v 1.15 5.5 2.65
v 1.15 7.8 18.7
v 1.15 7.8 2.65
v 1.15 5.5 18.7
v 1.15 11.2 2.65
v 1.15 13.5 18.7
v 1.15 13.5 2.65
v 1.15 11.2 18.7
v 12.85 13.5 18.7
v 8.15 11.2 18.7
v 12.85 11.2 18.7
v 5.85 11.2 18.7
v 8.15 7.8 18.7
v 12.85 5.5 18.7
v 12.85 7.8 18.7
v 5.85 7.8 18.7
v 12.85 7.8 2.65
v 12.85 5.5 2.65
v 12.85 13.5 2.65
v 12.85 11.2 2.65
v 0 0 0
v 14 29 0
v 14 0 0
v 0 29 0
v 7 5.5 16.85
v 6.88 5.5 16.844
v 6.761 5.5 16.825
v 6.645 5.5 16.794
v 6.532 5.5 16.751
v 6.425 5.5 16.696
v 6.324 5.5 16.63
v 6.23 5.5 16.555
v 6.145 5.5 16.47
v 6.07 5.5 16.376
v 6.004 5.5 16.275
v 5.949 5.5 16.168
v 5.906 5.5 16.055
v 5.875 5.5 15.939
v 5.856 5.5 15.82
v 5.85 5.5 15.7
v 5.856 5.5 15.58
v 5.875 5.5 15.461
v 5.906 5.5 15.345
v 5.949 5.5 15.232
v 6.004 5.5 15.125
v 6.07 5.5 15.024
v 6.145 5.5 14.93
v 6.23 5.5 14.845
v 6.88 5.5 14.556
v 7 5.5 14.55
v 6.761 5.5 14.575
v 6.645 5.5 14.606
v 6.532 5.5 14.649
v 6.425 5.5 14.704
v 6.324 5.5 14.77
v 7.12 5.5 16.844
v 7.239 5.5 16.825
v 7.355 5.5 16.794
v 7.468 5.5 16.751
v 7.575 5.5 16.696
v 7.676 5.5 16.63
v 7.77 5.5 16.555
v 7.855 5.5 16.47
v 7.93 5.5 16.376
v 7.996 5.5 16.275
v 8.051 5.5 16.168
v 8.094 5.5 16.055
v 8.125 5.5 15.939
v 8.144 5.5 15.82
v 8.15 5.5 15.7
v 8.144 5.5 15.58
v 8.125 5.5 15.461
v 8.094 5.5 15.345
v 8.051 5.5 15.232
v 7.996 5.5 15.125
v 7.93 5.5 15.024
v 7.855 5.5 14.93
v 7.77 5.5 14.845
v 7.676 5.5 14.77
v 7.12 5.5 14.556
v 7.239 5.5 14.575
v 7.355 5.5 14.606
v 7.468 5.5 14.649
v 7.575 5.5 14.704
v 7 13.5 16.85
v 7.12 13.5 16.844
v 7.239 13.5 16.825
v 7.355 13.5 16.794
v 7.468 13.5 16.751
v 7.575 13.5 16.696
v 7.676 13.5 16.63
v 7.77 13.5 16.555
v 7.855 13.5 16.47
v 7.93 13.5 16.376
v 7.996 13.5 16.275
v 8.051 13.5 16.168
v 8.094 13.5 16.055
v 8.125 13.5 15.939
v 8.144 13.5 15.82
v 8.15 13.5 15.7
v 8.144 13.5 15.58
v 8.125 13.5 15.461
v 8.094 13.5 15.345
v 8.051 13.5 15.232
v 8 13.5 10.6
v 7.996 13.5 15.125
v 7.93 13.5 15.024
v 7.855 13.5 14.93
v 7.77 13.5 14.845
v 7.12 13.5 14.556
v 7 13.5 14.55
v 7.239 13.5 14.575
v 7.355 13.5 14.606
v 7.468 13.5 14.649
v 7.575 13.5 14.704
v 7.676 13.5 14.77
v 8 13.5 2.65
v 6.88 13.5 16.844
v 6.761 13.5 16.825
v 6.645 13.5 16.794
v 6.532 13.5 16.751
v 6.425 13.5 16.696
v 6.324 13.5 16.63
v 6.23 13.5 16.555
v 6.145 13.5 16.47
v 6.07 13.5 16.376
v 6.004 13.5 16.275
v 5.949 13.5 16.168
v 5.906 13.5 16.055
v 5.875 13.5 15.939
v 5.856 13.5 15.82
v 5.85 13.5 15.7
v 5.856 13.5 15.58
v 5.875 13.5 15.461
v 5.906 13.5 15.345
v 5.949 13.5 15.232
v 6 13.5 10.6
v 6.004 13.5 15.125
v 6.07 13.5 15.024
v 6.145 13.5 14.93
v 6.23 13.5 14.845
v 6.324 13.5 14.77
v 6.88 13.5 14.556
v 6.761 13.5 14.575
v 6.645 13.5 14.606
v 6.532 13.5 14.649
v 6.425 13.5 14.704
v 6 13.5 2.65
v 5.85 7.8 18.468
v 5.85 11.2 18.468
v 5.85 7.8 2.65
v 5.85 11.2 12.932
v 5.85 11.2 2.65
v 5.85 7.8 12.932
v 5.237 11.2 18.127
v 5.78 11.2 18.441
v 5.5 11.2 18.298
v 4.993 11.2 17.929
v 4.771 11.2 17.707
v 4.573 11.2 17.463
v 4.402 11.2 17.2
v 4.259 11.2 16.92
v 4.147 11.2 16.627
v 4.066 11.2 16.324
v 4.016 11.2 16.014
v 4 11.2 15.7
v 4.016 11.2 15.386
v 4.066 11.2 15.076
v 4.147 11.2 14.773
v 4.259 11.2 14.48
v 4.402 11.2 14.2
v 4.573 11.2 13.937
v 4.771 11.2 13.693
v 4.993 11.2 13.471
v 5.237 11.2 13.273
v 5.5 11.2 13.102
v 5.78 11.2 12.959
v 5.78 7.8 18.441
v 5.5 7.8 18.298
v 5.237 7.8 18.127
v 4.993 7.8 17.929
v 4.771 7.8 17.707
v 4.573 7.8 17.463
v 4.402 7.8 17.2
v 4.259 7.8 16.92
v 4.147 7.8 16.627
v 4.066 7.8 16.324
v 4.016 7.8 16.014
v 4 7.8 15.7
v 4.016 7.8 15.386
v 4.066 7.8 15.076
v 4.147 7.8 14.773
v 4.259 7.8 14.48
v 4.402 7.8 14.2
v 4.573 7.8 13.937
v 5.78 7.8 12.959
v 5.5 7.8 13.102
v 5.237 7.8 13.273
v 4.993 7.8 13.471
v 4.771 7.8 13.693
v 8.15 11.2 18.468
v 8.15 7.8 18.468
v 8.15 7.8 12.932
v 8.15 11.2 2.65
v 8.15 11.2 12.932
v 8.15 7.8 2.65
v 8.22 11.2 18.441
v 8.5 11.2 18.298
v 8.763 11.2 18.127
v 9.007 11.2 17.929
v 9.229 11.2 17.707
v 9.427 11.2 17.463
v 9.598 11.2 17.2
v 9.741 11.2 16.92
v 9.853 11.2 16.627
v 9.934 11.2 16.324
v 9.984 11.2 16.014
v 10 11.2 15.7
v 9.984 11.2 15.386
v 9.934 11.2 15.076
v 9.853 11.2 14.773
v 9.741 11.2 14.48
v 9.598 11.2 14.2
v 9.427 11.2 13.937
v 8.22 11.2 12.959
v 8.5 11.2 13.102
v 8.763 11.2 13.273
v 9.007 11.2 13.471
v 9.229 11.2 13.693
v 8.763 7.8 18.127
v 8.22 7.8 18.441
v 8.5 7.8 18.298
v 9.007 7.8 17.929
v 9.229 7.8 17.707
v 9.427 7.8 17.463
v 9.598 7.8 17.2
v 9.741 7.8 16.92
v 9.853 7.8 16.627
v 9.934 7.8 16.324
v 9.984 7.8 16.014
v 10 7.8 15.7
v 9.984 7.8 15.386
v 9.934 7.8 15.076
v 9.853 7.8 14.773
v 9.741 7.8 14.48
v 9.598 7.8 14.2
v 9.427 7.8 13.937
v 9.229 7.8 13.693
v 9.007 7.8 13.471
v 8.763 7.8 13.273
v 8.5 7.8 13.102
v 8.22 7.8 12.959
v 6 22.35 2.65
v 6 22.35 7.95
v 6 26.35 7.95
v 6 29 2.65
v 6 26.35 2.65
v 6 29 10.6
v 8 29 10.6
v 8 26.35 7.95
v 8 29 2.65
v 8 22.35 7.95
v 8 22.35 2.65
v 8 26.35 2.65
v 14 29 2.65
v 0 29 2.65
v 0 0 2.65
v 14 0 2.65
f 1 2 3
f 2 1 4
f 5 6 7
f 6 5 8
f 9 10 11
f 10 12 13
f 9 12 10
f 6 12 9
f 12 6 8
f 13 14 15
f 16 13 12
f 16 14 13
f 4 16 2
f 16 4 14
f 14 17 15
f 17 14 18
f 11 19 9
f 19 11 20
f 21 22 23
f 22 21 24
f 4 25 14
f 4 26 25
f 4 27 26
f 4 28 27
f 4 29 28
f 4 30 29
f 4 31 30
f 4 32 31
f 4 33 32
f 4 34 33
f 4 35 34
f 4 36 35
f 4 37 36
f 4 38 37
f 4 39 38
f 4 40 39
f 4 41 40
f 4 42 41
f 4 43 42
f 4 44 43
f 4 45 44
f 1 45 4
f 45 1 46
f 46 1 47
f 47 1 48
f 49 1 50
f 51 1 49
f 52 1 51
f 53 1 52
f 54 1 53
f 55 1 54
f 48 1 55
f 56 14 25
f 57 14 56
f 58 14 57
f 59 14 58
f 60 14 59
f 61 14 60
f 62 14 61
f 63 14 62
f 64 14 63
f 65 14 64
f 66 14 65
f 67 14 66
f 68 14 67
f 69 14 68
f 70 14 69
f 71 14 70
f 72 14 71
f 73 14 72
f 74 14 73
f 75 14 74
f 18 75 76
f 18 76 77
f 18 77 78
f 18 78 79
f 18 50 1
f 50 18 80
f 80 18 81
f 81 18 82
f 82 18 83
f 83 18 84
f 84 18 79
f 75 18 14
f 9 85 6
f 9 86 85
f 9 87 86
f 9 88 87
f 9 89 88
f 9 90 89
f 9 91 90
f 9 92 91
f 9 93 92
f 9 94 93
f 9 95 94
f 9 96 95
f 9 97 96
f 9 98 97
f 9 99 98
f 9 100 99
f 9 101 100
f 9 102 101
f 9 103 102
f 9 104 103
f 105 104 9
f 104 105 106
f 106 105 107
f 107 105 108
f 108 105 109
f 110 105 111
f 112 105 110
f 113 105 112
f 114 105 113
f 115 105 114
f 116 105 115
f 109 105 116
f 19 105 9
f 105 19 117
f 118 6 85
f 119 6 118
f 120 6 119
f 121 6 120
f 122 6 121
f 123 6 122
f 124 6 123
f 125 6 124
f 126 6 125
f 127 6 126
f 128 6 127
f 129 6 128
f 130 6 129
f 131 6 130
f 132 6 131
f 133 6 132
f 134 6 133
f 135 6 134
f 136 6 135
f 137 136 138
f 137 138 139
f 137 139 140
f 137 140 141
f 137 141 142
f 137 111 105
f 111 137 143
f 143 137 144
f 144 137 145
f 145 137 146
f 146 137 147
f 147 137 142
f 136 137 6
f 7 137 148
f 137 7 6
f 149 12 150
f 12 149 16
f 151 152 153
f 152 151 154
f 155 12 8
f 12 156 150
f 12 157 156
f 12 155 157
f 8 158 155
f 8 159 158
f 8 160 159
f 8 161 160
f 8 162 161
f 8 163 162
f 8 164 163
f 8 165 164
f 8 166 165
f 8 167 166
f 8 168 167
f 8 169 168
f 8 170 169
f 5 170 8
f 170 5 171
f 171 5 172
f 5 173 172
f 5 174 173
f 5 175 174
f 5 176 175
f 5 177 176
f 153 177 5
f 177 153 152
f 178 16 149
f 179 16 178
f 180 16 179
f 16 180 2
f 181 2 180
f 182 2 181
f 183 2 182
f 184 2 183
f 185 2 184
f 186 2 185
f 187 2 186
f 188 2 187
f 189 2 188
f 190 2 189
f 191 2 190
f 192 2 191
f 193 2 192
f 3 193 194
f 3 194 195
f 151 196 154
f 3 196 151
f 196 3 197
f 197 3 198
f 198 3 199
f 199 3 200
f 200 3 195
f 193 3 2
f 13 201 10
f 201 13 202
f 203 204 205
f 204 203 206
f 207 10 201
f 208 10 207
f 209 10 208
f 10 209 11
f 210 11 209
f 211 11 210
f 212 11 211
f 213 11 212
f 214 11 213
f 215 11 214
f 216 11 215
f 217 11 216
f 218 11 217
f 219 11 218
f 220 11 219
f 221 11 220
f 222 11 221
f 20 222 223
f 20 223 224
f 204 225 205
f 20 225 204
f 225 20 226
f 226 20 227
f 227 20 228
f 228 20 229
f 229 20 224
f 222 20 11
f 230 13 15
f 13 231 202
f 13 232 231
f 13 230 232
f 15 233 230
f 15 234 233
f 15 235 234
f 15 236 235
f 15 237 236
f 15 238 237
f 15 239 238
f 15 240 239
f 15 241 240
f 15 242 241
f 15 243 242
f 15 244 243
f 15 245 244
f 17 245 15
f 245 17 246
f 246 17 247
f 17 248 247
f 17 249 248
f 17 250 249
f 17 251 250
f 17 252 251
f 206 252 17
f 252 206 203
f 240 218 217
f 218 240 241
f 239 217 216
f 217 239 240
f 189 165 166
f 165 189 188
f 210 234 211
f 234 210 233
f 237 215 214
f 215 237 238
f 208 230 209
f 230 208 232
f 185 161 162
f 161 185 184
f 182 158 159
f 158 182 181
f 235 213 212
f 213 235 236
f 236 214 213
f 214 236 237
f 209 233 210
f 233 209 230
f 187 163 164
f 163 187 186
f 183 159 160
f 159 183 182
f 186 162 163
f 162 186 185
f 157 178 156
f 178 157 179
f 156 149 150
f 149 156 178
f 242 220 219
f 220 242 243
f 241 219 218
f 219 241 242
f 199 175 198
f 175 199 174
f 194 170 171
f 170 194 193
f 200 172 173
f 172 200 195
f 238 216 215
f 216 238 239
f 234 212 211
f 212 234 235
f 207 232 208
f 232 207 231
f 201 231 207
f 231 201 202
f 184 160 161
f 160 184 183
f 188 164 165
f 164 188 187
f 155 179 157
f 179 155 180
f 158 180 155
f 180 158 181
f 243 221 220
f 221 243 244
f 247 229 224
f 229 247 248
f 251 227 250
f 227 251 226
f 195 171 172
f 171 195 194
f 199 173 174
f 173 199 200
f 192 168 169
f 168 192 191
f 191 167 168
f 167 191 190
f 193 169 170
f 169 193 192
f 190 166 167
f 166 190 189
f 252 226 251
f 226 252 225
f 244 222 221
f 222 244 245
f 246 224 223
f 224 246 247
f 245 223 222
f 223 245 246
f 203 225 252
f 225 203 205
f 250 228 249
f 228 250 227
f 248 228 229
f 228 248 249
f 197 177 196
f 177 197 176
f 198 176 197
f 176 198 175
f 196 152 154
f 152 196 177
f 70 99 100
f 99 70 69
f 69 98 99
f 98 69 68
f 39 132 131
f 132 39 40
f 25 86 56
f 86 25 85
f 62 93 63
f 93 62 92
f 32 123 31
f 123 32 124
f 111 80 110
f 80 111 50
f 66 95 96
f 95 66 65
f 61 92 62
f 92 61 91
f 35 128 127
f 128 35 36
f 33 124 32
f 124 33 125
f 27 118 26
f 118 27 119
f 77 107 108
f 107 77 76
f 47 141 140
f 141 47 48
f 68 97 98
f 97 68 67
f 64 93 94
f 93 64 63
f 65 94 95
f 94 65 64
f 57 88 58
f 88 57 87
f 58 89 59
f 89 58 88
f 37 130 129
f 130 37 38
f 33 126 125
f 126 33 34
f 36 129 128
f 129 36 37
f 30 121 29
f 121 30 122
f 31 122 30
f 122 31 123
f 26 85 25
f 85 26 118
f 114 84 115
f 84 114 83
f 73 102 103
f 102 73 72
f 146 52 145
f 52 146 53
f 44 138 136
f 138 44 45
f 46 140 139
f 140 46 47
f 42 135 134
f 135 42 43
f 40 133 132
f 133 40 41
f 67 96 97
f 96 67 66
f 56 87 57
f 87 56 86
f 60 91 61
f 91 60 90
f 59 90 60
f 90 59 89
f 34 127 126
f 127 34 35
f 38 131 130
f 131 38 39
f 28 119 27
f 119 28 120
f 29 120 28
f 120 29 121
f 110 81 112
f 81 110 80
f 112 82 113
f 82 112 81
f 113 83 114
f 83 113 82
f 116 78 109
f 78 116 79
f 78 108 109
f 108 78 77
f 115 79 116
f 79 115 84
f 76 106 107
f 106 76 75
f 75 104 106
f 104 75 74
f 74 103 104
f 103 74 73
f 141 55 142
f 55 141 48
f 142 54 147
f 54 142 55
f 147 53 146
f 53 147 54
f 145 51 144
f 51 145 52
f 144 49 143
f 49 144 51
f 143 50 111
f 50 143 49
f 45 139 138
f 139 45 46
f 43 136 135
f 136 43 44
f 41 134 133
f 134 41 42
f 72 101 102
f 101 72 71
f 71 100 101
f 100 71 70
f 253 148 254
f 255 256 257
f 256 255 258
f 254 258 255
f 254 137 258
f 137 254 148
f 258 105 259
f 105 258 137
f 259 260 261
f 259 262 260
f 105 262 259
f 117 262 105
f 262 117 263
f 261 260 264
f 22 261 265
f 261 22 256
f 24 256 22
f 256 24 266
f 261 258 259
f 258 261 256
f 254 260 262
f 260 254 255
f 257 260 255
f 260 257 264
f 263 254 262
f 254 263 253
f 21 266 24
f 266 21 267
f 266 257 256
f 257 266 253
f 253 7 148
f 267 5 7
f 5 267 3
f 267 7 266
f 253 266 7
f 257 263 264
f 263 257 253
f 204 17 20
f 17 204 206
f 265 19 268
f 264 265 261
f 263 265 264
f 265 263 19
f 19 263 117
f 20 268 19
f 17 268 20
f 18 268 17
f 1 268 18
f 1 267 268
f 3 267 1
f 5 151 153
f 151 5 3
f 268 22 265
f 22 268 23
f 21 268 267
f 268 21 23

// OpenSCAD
/* Curtain rail endstop
 *
 * We have been storing family recipes in this card storage box, just to find
 * that the back lid broke off and was lost.
 *
 * This is a replacement for the (if you look at it from the lid side) left lid 
* piece. If you need the right one you can mirror it.
 *
 * Author: @lluismh
 *
 * This work is licensed under a Creative Commons Attribution-ShareAlike 4.0
 * International License.
 */

base_width = 14;
base_length = 29;
base_thickness = 2.65;

railhole_length = 8; 
railhole_width = 11.7;
railhole_height = 18.7;
railhole_thickness = 2.3;
railhole_offset = 5.5;

endstop_length = base_length - railhole_offset - railhole_length;
endstop_height = 10.6;
endstop_thickness = 2;
endstop_hole_length = 4;
endstop_hole_width = base_thickness;
endstop_hole_offset = endstop_length - endstop_hole_length - endstop_hole_width;

hole_offset = 3;
hole_internal_diameter = railhole_thickness;
hole_external_diameter = hole_offset * 2;

$fn = 60;

union() {
    cube([base_width, base_length, base_thickness]);

    translate([(base_width - railhole_width) / 2, railhole_offset, 0]) {

        difference() {
            union() {
                difference() {
                    cube([railhole_width, railhole_length, railhole_height]);

                    translate([0, railhole_thickness, 0]) {
                        cube([(railhole_width - railhole_thickness)/2, railhole_length - (2 * railhole_thickness), railhole_height]);
                    }

                    translate([railhole_width - (railhole_width - railhole_thickness) / 2, railhole_thickness, 0]) {
                        cube([(railhole_width - railhole_thickness)/2, railhole_length - (2 * railhole_thickness), railhole_height]);
                    }
                };

                translate([railhole_width / 2, railhole_length, railhole_height - hole_offset]) {
                    rotate(a=90, v = [1,0,0]) {
                        cylinder(r = hole_external_diameter / 2, h = railhole_length);
                    }
                }
            }

            translate([railhole_width / 2, railhole_length, railhole_height - hole_offset]) {
                rotate(a=90, v = [1,0,0]) {
                    cylinder(r = hole_internal_diameter / 2, h = base_length);
                }
            }

        }

    }



    translate([(base_width - endstop_thickness) / 2, base_length - endstop_length, 0]) {
        difference() {
            cube([endstop_thickness, endstop_length, endstop_height]);

            translate([0, endstop_hole_offset, 0]) {
                cube([base_width, endstop_hole_length, endstop_height - base_thickness]);
            }
        }
    }

}

/*
union() {
    difference() {
       cube([base_width, base_length, base_thickness]);

        translate([base_width - base_cut_width, base_length - base_cut_length, 0]) {
            cube([base_cut_width, base_cut_length, base_thickness]);
        }
    }

    translate([base_width - base_cut_width, 0, 0]) {
        cube([base_cut_width, base_cut_length, base_extension_thickness * 2]);

    }

    translate([base_width - (base_cut_width / 2), -cylinder_length + base_cut_length, base_extension_thickness + cylinder_radius]) {
        rotate(a = 90, v = [-1, 0, 0]) {
            cylinder(r = cylinder_radius, h = cylinder_length);
            cylinder(r = pin_radius, h = pin_length + cylinder_length);
        }

    }

}
*/
